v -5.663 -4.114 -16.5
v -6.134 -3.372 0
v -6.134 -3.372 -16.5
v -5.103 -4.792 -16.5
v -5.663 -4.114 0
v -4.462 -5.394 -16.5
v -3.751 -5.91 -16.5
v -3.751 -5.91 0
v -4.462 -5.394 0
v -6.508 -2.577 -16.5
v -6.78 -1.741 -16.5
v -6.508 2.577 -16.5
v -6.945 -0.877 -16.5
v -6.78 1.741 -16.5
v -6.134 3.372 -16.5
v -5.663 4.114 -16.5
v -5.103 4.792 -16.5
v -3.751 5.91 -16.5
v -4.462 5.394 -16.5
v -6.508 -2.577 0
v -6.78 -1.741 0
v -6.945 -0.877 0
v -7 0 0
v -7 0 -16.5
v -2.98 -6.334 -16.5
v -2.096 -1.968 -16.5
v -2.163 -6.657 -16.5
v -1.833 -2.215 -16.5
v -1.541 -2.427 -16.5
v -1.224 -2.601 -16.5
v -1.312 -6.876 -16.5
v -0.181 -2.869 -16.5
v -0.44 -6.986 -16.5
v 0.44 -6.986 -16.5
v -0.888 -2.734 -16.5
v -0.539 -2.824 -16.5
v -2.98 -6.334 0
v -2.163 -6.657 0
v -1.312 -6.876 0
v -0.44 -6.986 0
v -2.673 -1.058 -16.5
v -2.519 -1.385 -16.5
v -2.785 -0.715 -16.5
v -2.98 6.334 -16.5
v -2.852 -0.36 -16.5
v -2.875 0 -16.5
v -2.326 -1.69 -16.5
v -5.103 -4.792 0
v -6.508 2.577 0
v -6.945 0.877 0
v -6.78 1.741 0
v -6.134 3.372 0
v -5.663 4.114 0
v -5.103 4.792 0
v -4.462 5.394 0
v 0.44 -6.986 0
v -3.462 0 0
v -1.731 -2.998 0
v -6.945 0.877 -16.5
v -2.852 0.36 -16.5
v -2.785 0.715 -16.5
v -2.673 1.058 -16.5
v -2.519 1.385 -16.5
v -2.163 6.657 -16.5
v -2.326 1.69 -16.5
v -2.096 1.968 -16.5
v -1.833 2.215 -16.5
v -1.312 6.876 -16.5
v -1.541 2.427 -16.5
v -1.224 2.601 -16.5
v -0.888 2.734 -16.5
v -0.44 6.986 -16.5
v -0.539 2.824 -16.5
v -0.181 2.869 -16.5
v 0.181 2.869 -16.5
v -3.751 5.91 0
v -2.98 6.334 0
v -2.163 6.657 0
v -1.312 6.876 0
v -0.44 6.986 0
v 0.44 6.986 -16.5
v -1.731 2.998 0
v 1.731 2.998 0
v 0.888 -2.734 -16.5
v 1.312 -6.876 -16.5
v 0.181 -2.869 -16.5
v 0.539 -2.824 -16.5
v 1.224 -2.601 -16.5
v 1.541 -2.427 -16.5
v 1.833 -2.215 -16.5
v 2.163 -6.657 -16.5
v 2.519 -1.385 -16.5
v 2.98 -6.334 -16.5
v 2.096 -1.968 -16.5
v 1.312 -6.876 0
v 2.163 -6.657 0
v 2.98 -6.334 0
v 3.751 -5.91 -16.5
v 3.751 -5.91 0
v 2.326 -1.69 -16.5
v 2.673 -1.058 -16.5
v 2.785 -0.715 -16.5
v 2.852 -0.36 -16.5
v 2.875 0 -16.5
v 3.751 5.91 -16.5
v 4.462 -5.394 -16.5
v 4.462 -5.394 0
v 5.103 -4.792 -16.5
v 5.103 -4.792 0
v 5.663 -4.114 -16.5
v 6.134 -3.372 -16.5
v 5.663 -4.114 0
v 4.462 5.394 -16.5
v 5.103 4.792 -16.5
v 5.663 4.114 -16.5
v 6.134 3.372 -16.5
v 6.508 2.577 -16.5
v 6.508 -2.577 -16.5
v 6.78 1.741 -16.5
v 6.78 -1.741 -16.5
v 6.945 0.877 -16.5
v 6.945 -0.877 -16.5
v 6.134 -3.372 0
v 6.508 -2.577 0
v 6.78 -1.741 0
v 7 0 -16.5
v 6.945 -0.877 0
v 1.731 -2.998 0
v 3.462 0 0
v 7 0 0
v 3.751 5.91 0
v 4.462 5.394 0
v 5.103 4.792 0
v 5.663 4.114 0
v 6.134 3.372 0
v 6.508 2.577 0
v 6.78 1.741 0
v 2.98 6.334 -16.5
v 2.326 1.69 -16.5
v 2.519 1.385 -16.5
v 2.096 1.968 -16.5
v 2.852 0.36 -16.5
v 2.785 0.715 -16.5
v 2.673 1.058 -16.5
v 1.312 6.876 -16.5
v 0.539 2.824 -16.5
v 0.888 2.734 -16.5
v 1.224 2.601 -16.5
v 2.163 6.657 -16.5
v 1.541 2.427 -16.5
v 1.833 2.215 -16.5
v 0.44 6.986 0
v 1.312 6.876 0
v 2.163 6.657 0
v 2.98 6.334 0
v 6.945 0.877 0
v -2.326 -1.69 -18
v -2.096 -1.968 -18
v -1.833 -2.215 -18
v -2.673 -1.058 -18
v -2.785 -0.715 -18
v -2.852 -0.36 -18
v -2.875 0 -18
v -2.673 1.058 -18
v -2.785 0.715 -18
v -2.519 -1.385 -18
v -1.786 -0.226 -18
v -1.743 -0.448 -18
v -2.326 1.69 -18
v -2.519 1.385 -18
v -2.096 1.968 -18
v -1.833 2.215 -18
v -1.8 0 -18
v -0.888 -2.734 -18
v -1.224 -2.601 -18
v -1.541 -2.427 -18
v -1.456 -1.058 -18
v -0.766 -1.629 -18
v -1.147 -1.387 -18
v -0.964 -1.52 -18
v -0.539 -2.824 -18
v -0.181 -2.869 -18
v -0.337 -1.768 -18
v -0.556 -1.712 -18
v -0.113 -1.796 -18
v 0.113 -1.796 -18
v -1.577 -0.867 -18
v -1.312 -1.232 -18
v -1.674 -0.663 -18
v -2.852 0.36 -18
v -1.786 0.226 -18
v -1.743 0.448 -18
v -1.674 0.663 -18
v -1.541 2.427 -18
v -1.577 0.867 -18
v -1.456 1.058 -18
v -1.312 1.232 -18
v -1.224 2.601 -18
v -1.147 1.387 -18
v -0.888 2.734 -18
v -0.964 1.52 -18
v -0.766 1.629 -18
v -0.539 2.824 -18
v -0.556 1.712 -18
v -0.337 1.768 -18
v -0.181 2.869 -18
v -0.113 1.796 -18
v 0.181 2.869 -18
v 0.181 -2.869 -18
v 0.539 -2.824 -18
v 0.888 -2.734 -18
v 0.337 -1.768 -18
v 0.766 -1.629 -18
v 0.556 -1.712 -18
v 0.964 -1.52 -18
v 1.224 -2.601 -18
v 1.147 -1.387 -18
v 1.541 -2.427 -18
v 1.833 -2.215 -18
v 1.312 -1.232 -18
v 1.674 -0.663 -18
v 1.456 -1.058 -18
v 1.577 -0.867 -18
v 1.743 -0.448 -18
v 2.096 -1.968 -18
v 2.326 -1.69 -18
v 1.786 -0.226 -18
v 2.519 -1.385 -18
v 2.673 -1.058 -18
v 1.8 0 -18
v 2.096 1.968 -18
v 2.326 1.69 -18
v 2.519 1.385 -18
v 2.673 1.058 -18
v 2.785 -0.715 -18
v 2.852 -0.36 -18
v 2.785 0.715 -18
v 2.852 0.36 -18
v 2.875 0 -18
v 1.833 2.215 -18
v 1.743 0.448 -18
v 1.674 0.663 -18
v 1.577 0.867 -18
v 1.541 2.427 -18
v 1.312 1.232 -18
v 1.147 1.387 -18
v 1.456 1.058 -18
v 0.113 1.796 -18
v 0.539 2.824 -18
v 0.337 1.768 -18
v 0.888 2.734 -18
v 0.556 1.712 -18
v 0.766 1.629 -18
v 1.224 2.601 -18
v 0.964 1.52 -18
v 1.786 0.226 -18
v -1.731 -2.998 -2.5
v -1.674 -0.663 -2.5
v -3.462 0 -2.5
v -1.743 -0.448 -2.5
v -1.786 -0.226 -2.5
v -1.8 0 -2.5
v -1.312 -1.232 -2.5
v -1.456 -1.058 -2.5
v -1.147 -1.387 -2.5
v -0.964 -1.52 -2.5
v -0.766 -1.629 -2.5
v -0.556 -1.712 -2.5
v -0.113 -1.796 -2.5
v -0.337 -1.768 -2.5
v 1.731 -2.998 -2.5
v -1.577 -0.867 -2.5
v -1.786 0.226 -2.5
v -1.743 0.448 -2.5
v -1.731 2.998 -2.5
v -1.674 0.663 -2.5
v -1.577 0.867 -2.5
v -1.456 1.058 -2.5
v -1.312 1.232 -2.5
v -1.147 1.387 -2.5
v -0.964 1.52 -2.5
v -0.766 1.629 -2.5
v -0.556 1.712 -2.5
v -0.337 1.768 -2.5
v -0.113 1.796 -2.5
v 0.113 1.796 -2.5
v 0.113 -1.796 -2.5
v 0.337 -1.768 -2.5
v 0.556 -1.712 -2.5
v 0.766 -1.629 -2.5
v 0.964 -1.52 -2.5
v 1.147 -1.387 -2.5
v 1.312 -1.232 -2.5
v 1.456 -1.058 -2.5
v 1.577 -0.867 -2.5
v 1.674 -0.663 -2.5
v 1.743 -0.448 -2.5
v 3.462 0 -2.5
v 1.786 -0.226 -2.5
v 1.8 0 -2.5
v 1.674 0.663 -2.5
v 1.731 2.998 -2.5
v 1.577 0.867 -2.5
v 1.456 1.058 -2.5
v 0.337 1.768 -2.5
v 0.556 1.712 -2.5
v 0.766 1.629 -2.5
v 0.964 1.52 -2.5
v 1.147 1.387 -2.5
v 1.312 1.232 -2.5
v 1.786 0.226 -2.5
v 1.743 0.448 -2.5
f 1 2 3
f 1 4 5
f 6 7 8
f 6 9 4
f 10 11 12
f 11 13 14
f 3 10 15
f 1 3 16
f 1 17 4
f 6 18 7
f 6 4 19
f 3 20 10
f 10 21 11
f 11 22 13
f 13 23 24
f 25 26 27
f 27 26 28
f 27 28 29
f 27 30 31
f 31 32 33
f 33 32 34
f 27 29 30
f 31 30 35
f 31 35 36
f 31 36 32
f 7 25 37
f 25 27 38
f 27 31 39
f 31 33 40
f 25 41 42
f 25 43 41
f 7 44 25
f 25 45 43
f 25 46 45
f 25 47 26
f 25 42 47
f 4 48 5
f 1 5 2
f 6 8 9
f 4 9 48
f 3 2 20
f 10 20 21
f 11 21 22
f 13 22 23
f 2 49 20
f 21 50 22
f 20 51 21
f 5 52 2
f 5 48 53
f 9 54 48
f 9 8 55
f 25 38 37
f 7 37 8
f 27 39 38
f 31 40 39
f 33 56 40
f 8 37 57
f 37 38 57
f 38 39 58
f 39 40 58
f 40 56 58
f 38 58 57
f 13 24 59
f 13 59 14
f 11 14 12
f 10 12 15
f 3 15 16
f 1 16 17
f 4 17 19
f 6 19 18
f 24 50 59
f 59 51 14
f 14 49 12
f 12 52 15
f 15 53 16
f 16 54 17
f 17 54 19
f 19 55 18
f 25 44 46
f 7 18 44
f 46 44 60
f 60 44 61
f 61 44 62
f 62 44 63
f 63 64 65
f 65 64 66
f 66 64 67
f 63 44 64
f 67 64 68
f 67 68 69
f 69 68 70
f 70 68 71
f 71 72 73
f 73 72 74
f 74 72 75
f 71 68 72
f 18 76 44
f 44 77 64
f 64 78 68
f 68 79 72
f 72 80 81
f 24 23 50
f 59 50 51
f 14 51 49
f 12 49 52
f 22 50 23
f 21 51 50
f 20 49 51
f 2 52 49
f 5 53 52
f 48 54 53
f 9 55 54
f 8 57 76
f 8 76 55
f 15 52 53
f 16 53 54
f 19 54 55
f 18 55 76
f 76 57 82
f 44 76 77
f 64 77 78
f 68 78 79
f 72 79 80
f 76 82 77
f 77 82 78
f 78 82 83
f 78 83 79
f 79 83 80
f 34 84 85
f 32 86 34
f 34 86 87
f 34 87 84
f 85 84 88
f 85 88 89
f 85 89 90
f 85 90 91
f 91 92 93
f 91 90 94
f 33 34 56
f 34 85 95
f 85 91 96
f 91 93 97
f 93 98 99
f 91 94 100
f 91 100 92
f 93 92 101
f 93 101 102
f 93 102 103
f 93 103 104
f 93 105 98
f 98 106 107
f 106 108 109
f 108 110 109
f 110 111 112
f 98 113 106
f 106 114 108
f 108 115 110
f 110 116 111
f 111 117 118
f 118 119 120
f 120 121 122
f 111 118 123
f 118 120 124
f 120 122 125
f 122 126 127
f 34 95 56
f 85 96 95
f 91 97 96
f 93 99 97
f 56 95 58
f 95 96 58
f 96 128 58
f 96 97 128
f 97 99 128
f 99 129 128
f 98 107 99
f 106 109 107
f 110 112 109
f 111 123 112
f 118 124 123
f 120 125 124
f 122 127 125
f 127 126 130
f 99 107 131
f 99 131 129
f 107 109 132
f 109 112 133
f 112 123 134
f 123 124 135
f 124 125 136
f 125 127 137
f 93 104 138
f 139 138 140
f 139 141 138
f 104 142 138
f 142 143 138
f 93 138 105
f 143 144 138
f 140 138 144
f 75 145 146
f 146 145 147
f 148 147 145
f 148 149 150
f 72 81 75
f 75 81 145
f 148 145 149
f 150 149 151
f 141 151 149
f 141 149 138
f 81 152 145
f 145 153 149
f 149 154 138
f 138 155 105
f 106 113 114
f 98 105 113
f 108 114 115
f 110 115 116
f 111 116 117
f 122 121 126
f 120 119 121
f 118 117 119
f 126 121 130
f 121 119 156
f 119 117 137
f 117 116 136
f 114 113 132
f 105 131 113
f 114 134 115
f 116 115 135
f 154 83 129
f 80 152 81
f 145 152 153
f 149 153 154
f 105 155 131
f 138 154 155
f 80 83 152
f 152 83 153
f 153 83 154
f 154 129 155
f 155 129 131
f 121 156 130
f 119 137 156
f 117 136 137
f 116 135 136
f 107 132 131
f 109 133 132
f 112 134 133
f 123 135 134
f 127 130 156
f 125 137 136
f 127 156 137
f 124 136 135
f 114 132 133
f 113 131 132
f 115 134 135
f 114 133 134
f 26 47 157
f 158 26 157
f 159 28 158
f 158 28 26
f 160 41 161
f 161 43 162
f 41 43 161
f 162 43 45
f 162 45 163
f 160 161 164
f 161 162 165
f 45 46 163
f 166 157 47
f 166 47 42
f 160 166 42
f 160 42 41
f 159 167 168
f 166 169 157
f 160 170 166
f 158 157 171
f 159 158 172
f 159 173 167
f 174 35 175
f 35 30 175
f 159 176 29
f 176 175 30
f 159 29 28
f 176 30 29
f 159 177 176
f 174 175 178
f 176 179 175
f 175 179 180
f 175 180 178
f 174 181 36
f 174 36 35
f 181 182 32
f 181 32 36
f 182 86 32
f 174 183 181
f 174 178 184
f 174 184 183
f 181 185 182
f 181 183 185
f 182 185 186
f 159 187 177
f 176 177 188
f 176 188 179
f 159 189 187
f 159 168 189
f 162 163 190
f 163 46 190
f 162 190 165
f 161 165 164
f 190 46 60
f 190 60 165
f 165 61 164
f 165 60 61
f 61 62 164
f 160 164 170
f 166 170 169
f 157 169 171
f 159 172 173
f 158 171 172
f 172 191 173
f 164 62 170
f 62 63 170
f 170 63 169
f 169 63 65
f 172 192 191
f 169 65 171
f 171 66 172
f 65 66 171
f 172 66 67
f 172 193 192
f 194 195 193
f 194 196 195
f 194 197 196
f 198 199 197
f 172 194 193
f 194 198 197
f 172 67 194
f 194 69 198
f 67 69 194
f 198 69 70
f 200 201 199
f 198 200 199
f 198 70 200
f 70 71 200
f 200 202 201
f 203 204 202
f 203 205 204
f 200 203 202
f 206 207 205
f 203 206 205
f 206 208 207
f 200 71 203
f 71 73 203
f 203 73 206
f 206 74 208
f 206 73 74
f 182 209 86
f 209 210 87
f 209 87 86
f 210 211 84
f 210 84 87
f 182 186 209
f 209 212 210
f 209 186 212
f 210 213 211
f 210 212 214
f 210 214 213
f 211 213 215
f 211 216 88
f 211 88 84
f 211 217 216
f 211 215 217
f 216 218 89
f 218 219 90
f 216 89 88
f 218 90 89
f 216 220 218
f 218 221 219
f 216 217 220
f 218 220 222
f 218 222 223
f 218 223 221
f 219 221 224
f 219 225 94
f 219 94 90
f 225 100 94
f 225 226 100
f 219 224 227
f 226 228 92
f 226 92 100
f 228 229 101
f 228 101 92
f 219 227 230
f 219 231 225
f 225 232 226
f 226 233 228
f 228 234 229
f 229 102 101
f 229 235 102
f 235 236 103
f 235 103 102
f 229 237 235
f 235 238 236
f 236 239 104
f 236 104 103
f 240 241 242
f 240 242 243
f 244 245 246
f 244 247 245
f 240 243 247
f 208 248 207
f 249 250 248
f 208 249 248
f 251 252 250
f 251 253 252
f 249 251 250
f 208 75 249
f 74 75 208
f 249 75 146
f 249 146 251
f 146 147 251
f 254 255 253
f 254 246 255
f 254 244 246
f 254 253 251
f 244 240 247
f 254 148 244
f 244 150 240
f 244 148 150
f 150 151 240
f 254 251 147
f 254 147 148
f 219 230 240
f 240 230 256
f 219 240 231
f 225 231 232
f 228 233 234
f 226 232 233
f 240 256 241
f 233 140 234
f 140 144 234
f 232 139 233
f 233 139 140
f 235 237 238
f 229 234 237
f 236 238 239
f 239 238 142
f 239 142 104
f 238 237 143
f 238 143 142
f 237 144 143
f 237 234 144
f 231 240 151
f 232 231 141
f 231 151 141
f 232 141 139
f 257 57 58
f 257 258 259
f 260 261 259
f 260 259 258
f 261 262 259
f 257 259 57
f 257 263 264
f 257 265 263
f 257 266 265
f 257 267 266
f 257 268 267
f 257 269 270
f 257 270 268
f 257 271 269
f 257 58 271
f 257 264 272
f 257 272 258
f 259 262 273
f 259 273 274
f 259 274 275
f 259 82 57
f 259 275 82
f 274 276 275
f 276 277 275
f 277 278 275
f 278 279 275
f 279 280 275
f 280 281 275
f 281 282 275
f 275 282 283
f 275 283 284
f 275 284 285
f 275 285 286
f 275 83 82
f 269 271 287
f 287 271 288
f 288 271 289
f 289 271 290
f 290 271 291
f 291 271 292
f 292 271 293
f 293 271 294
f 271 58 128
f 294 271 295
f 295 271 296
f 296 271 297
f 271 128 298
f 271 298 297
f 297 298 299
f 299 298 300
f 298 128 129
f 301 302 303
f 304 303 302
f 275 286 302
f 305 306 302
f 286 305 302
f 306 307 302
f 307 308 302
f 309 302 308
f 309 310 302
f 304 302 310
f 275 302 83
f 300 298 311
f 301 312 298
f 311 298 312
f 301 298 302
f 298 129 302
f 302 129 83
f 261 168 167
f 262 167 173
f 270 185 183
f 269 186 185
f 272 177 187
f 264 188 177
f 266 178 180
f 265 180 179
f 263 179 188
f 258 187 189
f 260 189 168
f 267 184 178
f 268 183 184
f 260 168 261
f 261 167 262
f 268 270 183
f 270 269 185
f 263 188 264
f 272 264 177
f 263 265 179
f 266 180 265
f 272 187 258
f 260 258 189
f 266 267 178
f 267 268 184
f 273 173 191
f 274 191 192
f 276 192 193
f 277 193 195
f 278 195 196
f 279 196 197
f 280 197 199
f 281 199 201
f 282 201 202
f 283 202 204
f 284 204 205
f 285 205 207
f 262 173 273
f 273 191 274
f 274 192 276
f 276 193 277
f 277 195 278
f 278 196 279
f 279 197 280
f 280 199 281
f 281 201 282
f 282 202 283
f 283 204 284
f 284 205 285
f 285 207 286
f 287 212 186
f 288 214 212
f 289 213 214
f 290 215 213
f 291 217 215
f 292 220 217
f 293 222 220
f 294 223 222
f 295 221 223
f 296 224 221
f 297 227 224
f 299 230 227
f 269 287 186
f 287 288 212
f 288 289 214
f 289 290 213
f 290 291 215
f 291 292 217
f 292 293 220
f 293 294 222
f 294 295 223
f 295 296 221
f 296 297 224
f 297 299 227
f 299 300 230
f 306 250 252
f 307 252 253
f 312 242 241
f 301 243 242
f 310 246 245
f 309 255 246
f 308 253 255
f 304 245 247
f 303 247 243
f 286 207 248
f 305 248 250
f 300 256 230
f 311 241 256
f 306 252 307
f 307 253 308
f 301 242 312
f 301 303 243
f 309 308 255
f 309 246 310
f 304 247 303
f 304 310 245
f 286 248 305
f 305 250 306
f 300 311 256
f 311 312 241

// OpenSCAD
$fn = 50;

difference() {
	union() {
		translate(v = [0, 0, -16.5]) {
			cylinder(h = 16.5, r = 7.0);
		}
		#translate(v = [0, 0, -18.0]) {
			cylinder(h = 18, r = 2.875);
		}
	}
	union() {
		translate(v = [0, 0, 0]) {
			rotate(a = [0, 0, 0]) {
				difference() {
					union() {
						translate(v = [0, 0, -2.5]) {
							linear_extrude(height = 2.5) {
								polygon(points = [[3.4619999999999997, 0.0], [1.7310000000000003, 2.9981799479017264], [-1.7309999999999992, 2.9981799479017264], [-3.4619999999999997, 4.2397272186481365e-16], [-1.7310000000000014, -2.998179947901726], [1.7309999999999977, -2.9981799479017277]]);
							}
						}
					}
					union();
				}
			}
		}
		#translate(v = [0, 0, -100.0]) {
			cylinder(h = 200, r = 1.8);
		}
	}
}
